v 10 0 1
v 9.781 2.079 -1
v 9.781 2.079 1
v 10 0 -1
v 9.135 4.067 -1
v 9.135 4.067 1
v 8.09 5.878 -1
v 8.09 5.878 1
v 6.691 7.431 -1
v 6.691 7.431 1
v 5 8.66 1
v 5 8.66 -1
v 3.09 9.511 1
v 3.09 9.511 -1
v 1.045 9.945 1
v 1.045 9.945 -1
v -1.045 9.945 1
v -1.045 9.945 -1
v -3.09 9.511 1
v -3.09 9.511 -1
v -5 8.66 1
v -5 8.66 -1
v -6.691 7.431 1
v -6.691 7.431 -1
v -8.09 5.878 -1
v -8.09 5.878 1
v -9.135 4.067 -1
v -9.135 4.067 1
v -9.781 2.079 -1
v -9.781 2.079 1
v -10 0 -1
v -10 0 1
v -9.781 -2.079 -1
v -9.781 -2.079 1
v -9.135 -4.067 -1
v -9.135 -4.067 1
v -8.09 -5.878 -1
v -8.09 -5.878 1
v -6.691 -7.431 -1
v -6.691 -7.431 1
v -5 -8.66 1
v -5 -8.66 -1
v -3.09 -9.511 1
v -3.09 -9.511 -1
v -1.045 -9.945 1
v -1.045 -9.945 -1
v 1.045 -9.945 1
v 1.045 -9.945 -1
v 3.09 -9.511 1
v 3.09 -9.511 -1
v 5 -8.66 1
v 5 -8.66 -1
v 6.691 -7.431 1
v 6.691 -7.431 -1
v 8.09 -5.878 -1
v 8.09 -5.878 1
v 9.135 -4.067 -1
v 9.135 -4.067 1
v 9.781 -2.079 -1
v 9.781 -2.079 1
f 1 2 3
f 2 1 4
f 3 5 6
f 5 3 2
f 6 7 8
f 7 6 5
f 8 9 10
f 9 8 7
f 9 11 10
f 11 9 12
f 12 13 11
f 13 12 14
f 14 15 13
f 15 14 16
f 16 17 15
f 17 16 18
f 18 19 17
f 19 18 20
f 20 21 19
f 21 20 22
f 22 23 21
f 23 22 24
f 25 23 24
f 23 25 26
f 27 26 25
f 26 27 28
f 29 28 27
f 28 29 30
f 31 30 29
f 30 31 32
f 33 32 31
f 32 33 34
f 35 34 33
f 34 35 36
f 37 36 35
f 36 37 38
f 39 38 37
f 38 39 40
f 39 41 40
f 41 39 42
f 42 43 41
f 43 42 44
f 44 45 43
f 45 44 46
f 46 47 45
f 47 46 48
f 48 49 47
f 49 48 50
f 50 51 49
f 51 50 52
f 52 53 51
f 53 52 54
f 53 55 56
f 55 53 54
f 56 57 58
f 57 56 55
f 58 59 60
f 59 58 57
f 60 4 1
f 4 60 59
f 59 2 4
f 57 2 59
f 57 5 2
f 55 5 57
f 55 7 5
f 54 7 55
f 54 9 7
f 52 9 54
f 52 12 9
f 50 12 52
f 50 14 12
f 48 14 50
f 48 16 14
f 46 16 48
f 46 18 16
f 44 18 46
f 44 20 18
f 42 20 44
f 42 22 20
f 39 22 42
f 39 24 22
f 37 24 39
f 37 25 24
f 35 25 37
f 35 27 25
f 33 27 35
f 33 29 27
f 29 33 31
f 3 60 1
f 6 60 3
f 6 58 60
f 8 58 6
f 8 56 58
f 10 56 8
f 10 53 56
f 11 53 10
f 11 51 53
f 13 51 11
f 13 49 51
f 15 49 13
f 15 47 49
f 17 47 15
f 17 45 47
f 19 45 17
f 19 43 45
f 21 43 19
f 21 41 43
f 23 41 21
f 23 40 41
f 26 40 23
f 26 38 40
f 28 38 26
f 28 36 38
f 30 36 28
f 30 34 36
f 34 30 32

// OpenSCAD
// Parameters for the central disk
disk_diameter = 20; // Diameter of the disk (consistent with the original model)
disk_thickness = 2; // Adjusted thickness of the disk to match the original model

// Central disk
module central_disk() {
    cylinder(d = disk_diameter, h = disk_thickness, center = true);
}

// Render the central disk
central_disk();
